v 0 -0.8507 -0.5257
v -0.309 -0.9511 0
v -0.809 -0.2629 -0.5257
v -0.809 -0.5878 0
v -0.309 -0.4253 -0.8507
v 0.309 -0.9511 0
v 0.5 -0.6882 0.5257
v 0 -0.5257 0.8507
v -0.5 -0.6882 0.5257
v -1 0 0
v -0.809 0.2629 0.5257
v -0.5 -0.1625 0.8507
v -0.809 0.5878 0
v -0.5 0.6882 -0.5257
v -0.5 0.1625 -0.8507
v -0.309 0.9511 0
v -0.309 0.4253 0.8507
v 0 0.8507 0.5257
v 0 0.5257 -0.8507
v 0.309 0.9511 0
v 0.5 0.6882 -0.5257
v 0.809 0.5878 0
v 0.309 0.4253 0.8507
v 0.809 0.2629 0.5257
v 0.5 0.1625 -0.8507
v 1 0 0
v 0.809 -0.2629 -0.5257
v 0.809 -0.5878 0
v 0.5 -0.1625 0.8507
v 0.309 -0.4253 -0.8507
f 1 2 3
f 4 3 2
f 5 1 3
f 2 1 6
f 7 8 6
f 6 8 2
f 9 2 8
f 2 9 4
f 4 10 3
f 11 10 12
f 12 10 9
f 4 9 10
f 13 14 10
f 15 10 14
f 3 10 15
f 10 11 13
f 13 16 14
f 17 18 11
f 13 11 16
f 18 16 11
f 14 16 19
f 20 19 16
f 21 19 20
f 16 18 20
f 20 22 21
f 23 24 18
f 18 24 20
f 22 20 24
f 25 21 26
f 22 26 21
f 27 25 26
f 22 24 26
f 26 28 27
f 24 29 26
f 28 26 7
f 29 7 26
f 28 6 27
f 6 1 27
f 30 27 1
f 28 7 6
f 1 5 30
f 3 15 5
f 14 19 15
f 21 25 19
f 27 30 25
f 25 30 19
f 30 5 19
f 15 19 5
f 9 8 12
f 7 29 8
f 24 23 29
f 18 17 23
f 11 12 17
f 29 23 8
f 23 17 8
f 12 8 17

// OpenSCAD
polyhedron( points = [[-0.309016993749896, -0.951056516051397, -5.0318074688656e-17], [-0.809016993588833, -0.587785252110859, -5.0318074688656e-17], [-0.99999999947226, 3.32403946015517e-11, -5.0318074688656e-17], [-0.809016994430361, 0.587785252160188, -5.0318074688656e-17], [-0.309016995111516, 0.951056516055828, -5.0318074688656e-17], [0.309016993129954, 0.951056516055834, -5.0318074688656e-17], [0.809016993001508, 0.587785252160188, -5.0318074688656e-17], [0.999999998937715, 3.32403946015517e-11, -5.0318074688656e-17], [0.809016993948601, -0.587785252110856, -5.0318074688656e-17], [0.309016994662373, -0.951056516051397, -5.0318074688656e-17], [4.72258368754802e-10, -0.850650807868913, -0.525731111781663], [-0.809016993573684, -0.262865555889258, -0.52573111151861], [-0.499999999151233, 0.68819095963177, -0.525731111806481], [0.500000000213218, 0.688190959523144, -0.525731111806481], [0.809016994322623, -0.262865556190037, -0.525731111806481], [-0.309016993800095, -0.425325403778152, -0.850650807571507], [-0.499999999163324, 0.162459847820332, -0.850650807844845], [5.07952867346328e-10, 0.525731111495316, -0.850650807844845], [0.500000000107762, 0.162459847721966, -0.850650807844845], [0.309016994595524, -0.425325403591169, -0.850650807472882], [-0.499999999238949, -0.688190959801621, 0.525731111781663], [0.500000000034655, -0.688190959933146, 0.525731111518609], [0.809016993175565, 0.262865556004279, 0.525731111806481], [-9.30417372827394e-10, 0.850650808055857, 0.525731111806481], [-0.809016994119956, 0.26286555597381, 0.525731111806481], [3.77838834530456e-10, -0.525731111684861, 0.850650807571507], [0.499999999369663, -0.162459848025261, 0.850650807844845], [0.309016993465788, 0.425325403985038, 0.850650807844845], [-0.309016994654752, 0.425325403979742, 0.850650807844845], [-0.499999999337722, -0.162459847602835, 0.850650807472882]], faces = [[0, 1, 11, 15, 10], [0, 10, 9], [0, 9, 21, 25, 20], [0, 20, 1], [1, 2, 11], [1, 20, 29, 24, 2], [2, 3, 12, 16, 11], [2, 24, 3], [3, 4, 12], [3, 24, 28, 23, 4], [4, 5, 13, 17, 12], [4, 23, 5], [5, 6, 13], [5, 23, 27, 22, 6], [6, 7, 14, 18, 13], [6, 22, 7], [7, 8, 14], [7, 22, 26, 21, 8], [8, 9, 10, 19, 14], [8, 21, 9], [10, 15, 19], [11, 16, 15], [12, 17, 16], [13, 18, 17], [14, 19, 18], [15, 16, 17, 18, 19], [20, 25, 29], [21, 26, 25], [22, 27, 26], [23, 28, 27], [24, 29, 28], [25, 26, 27, 28, 29]]);
